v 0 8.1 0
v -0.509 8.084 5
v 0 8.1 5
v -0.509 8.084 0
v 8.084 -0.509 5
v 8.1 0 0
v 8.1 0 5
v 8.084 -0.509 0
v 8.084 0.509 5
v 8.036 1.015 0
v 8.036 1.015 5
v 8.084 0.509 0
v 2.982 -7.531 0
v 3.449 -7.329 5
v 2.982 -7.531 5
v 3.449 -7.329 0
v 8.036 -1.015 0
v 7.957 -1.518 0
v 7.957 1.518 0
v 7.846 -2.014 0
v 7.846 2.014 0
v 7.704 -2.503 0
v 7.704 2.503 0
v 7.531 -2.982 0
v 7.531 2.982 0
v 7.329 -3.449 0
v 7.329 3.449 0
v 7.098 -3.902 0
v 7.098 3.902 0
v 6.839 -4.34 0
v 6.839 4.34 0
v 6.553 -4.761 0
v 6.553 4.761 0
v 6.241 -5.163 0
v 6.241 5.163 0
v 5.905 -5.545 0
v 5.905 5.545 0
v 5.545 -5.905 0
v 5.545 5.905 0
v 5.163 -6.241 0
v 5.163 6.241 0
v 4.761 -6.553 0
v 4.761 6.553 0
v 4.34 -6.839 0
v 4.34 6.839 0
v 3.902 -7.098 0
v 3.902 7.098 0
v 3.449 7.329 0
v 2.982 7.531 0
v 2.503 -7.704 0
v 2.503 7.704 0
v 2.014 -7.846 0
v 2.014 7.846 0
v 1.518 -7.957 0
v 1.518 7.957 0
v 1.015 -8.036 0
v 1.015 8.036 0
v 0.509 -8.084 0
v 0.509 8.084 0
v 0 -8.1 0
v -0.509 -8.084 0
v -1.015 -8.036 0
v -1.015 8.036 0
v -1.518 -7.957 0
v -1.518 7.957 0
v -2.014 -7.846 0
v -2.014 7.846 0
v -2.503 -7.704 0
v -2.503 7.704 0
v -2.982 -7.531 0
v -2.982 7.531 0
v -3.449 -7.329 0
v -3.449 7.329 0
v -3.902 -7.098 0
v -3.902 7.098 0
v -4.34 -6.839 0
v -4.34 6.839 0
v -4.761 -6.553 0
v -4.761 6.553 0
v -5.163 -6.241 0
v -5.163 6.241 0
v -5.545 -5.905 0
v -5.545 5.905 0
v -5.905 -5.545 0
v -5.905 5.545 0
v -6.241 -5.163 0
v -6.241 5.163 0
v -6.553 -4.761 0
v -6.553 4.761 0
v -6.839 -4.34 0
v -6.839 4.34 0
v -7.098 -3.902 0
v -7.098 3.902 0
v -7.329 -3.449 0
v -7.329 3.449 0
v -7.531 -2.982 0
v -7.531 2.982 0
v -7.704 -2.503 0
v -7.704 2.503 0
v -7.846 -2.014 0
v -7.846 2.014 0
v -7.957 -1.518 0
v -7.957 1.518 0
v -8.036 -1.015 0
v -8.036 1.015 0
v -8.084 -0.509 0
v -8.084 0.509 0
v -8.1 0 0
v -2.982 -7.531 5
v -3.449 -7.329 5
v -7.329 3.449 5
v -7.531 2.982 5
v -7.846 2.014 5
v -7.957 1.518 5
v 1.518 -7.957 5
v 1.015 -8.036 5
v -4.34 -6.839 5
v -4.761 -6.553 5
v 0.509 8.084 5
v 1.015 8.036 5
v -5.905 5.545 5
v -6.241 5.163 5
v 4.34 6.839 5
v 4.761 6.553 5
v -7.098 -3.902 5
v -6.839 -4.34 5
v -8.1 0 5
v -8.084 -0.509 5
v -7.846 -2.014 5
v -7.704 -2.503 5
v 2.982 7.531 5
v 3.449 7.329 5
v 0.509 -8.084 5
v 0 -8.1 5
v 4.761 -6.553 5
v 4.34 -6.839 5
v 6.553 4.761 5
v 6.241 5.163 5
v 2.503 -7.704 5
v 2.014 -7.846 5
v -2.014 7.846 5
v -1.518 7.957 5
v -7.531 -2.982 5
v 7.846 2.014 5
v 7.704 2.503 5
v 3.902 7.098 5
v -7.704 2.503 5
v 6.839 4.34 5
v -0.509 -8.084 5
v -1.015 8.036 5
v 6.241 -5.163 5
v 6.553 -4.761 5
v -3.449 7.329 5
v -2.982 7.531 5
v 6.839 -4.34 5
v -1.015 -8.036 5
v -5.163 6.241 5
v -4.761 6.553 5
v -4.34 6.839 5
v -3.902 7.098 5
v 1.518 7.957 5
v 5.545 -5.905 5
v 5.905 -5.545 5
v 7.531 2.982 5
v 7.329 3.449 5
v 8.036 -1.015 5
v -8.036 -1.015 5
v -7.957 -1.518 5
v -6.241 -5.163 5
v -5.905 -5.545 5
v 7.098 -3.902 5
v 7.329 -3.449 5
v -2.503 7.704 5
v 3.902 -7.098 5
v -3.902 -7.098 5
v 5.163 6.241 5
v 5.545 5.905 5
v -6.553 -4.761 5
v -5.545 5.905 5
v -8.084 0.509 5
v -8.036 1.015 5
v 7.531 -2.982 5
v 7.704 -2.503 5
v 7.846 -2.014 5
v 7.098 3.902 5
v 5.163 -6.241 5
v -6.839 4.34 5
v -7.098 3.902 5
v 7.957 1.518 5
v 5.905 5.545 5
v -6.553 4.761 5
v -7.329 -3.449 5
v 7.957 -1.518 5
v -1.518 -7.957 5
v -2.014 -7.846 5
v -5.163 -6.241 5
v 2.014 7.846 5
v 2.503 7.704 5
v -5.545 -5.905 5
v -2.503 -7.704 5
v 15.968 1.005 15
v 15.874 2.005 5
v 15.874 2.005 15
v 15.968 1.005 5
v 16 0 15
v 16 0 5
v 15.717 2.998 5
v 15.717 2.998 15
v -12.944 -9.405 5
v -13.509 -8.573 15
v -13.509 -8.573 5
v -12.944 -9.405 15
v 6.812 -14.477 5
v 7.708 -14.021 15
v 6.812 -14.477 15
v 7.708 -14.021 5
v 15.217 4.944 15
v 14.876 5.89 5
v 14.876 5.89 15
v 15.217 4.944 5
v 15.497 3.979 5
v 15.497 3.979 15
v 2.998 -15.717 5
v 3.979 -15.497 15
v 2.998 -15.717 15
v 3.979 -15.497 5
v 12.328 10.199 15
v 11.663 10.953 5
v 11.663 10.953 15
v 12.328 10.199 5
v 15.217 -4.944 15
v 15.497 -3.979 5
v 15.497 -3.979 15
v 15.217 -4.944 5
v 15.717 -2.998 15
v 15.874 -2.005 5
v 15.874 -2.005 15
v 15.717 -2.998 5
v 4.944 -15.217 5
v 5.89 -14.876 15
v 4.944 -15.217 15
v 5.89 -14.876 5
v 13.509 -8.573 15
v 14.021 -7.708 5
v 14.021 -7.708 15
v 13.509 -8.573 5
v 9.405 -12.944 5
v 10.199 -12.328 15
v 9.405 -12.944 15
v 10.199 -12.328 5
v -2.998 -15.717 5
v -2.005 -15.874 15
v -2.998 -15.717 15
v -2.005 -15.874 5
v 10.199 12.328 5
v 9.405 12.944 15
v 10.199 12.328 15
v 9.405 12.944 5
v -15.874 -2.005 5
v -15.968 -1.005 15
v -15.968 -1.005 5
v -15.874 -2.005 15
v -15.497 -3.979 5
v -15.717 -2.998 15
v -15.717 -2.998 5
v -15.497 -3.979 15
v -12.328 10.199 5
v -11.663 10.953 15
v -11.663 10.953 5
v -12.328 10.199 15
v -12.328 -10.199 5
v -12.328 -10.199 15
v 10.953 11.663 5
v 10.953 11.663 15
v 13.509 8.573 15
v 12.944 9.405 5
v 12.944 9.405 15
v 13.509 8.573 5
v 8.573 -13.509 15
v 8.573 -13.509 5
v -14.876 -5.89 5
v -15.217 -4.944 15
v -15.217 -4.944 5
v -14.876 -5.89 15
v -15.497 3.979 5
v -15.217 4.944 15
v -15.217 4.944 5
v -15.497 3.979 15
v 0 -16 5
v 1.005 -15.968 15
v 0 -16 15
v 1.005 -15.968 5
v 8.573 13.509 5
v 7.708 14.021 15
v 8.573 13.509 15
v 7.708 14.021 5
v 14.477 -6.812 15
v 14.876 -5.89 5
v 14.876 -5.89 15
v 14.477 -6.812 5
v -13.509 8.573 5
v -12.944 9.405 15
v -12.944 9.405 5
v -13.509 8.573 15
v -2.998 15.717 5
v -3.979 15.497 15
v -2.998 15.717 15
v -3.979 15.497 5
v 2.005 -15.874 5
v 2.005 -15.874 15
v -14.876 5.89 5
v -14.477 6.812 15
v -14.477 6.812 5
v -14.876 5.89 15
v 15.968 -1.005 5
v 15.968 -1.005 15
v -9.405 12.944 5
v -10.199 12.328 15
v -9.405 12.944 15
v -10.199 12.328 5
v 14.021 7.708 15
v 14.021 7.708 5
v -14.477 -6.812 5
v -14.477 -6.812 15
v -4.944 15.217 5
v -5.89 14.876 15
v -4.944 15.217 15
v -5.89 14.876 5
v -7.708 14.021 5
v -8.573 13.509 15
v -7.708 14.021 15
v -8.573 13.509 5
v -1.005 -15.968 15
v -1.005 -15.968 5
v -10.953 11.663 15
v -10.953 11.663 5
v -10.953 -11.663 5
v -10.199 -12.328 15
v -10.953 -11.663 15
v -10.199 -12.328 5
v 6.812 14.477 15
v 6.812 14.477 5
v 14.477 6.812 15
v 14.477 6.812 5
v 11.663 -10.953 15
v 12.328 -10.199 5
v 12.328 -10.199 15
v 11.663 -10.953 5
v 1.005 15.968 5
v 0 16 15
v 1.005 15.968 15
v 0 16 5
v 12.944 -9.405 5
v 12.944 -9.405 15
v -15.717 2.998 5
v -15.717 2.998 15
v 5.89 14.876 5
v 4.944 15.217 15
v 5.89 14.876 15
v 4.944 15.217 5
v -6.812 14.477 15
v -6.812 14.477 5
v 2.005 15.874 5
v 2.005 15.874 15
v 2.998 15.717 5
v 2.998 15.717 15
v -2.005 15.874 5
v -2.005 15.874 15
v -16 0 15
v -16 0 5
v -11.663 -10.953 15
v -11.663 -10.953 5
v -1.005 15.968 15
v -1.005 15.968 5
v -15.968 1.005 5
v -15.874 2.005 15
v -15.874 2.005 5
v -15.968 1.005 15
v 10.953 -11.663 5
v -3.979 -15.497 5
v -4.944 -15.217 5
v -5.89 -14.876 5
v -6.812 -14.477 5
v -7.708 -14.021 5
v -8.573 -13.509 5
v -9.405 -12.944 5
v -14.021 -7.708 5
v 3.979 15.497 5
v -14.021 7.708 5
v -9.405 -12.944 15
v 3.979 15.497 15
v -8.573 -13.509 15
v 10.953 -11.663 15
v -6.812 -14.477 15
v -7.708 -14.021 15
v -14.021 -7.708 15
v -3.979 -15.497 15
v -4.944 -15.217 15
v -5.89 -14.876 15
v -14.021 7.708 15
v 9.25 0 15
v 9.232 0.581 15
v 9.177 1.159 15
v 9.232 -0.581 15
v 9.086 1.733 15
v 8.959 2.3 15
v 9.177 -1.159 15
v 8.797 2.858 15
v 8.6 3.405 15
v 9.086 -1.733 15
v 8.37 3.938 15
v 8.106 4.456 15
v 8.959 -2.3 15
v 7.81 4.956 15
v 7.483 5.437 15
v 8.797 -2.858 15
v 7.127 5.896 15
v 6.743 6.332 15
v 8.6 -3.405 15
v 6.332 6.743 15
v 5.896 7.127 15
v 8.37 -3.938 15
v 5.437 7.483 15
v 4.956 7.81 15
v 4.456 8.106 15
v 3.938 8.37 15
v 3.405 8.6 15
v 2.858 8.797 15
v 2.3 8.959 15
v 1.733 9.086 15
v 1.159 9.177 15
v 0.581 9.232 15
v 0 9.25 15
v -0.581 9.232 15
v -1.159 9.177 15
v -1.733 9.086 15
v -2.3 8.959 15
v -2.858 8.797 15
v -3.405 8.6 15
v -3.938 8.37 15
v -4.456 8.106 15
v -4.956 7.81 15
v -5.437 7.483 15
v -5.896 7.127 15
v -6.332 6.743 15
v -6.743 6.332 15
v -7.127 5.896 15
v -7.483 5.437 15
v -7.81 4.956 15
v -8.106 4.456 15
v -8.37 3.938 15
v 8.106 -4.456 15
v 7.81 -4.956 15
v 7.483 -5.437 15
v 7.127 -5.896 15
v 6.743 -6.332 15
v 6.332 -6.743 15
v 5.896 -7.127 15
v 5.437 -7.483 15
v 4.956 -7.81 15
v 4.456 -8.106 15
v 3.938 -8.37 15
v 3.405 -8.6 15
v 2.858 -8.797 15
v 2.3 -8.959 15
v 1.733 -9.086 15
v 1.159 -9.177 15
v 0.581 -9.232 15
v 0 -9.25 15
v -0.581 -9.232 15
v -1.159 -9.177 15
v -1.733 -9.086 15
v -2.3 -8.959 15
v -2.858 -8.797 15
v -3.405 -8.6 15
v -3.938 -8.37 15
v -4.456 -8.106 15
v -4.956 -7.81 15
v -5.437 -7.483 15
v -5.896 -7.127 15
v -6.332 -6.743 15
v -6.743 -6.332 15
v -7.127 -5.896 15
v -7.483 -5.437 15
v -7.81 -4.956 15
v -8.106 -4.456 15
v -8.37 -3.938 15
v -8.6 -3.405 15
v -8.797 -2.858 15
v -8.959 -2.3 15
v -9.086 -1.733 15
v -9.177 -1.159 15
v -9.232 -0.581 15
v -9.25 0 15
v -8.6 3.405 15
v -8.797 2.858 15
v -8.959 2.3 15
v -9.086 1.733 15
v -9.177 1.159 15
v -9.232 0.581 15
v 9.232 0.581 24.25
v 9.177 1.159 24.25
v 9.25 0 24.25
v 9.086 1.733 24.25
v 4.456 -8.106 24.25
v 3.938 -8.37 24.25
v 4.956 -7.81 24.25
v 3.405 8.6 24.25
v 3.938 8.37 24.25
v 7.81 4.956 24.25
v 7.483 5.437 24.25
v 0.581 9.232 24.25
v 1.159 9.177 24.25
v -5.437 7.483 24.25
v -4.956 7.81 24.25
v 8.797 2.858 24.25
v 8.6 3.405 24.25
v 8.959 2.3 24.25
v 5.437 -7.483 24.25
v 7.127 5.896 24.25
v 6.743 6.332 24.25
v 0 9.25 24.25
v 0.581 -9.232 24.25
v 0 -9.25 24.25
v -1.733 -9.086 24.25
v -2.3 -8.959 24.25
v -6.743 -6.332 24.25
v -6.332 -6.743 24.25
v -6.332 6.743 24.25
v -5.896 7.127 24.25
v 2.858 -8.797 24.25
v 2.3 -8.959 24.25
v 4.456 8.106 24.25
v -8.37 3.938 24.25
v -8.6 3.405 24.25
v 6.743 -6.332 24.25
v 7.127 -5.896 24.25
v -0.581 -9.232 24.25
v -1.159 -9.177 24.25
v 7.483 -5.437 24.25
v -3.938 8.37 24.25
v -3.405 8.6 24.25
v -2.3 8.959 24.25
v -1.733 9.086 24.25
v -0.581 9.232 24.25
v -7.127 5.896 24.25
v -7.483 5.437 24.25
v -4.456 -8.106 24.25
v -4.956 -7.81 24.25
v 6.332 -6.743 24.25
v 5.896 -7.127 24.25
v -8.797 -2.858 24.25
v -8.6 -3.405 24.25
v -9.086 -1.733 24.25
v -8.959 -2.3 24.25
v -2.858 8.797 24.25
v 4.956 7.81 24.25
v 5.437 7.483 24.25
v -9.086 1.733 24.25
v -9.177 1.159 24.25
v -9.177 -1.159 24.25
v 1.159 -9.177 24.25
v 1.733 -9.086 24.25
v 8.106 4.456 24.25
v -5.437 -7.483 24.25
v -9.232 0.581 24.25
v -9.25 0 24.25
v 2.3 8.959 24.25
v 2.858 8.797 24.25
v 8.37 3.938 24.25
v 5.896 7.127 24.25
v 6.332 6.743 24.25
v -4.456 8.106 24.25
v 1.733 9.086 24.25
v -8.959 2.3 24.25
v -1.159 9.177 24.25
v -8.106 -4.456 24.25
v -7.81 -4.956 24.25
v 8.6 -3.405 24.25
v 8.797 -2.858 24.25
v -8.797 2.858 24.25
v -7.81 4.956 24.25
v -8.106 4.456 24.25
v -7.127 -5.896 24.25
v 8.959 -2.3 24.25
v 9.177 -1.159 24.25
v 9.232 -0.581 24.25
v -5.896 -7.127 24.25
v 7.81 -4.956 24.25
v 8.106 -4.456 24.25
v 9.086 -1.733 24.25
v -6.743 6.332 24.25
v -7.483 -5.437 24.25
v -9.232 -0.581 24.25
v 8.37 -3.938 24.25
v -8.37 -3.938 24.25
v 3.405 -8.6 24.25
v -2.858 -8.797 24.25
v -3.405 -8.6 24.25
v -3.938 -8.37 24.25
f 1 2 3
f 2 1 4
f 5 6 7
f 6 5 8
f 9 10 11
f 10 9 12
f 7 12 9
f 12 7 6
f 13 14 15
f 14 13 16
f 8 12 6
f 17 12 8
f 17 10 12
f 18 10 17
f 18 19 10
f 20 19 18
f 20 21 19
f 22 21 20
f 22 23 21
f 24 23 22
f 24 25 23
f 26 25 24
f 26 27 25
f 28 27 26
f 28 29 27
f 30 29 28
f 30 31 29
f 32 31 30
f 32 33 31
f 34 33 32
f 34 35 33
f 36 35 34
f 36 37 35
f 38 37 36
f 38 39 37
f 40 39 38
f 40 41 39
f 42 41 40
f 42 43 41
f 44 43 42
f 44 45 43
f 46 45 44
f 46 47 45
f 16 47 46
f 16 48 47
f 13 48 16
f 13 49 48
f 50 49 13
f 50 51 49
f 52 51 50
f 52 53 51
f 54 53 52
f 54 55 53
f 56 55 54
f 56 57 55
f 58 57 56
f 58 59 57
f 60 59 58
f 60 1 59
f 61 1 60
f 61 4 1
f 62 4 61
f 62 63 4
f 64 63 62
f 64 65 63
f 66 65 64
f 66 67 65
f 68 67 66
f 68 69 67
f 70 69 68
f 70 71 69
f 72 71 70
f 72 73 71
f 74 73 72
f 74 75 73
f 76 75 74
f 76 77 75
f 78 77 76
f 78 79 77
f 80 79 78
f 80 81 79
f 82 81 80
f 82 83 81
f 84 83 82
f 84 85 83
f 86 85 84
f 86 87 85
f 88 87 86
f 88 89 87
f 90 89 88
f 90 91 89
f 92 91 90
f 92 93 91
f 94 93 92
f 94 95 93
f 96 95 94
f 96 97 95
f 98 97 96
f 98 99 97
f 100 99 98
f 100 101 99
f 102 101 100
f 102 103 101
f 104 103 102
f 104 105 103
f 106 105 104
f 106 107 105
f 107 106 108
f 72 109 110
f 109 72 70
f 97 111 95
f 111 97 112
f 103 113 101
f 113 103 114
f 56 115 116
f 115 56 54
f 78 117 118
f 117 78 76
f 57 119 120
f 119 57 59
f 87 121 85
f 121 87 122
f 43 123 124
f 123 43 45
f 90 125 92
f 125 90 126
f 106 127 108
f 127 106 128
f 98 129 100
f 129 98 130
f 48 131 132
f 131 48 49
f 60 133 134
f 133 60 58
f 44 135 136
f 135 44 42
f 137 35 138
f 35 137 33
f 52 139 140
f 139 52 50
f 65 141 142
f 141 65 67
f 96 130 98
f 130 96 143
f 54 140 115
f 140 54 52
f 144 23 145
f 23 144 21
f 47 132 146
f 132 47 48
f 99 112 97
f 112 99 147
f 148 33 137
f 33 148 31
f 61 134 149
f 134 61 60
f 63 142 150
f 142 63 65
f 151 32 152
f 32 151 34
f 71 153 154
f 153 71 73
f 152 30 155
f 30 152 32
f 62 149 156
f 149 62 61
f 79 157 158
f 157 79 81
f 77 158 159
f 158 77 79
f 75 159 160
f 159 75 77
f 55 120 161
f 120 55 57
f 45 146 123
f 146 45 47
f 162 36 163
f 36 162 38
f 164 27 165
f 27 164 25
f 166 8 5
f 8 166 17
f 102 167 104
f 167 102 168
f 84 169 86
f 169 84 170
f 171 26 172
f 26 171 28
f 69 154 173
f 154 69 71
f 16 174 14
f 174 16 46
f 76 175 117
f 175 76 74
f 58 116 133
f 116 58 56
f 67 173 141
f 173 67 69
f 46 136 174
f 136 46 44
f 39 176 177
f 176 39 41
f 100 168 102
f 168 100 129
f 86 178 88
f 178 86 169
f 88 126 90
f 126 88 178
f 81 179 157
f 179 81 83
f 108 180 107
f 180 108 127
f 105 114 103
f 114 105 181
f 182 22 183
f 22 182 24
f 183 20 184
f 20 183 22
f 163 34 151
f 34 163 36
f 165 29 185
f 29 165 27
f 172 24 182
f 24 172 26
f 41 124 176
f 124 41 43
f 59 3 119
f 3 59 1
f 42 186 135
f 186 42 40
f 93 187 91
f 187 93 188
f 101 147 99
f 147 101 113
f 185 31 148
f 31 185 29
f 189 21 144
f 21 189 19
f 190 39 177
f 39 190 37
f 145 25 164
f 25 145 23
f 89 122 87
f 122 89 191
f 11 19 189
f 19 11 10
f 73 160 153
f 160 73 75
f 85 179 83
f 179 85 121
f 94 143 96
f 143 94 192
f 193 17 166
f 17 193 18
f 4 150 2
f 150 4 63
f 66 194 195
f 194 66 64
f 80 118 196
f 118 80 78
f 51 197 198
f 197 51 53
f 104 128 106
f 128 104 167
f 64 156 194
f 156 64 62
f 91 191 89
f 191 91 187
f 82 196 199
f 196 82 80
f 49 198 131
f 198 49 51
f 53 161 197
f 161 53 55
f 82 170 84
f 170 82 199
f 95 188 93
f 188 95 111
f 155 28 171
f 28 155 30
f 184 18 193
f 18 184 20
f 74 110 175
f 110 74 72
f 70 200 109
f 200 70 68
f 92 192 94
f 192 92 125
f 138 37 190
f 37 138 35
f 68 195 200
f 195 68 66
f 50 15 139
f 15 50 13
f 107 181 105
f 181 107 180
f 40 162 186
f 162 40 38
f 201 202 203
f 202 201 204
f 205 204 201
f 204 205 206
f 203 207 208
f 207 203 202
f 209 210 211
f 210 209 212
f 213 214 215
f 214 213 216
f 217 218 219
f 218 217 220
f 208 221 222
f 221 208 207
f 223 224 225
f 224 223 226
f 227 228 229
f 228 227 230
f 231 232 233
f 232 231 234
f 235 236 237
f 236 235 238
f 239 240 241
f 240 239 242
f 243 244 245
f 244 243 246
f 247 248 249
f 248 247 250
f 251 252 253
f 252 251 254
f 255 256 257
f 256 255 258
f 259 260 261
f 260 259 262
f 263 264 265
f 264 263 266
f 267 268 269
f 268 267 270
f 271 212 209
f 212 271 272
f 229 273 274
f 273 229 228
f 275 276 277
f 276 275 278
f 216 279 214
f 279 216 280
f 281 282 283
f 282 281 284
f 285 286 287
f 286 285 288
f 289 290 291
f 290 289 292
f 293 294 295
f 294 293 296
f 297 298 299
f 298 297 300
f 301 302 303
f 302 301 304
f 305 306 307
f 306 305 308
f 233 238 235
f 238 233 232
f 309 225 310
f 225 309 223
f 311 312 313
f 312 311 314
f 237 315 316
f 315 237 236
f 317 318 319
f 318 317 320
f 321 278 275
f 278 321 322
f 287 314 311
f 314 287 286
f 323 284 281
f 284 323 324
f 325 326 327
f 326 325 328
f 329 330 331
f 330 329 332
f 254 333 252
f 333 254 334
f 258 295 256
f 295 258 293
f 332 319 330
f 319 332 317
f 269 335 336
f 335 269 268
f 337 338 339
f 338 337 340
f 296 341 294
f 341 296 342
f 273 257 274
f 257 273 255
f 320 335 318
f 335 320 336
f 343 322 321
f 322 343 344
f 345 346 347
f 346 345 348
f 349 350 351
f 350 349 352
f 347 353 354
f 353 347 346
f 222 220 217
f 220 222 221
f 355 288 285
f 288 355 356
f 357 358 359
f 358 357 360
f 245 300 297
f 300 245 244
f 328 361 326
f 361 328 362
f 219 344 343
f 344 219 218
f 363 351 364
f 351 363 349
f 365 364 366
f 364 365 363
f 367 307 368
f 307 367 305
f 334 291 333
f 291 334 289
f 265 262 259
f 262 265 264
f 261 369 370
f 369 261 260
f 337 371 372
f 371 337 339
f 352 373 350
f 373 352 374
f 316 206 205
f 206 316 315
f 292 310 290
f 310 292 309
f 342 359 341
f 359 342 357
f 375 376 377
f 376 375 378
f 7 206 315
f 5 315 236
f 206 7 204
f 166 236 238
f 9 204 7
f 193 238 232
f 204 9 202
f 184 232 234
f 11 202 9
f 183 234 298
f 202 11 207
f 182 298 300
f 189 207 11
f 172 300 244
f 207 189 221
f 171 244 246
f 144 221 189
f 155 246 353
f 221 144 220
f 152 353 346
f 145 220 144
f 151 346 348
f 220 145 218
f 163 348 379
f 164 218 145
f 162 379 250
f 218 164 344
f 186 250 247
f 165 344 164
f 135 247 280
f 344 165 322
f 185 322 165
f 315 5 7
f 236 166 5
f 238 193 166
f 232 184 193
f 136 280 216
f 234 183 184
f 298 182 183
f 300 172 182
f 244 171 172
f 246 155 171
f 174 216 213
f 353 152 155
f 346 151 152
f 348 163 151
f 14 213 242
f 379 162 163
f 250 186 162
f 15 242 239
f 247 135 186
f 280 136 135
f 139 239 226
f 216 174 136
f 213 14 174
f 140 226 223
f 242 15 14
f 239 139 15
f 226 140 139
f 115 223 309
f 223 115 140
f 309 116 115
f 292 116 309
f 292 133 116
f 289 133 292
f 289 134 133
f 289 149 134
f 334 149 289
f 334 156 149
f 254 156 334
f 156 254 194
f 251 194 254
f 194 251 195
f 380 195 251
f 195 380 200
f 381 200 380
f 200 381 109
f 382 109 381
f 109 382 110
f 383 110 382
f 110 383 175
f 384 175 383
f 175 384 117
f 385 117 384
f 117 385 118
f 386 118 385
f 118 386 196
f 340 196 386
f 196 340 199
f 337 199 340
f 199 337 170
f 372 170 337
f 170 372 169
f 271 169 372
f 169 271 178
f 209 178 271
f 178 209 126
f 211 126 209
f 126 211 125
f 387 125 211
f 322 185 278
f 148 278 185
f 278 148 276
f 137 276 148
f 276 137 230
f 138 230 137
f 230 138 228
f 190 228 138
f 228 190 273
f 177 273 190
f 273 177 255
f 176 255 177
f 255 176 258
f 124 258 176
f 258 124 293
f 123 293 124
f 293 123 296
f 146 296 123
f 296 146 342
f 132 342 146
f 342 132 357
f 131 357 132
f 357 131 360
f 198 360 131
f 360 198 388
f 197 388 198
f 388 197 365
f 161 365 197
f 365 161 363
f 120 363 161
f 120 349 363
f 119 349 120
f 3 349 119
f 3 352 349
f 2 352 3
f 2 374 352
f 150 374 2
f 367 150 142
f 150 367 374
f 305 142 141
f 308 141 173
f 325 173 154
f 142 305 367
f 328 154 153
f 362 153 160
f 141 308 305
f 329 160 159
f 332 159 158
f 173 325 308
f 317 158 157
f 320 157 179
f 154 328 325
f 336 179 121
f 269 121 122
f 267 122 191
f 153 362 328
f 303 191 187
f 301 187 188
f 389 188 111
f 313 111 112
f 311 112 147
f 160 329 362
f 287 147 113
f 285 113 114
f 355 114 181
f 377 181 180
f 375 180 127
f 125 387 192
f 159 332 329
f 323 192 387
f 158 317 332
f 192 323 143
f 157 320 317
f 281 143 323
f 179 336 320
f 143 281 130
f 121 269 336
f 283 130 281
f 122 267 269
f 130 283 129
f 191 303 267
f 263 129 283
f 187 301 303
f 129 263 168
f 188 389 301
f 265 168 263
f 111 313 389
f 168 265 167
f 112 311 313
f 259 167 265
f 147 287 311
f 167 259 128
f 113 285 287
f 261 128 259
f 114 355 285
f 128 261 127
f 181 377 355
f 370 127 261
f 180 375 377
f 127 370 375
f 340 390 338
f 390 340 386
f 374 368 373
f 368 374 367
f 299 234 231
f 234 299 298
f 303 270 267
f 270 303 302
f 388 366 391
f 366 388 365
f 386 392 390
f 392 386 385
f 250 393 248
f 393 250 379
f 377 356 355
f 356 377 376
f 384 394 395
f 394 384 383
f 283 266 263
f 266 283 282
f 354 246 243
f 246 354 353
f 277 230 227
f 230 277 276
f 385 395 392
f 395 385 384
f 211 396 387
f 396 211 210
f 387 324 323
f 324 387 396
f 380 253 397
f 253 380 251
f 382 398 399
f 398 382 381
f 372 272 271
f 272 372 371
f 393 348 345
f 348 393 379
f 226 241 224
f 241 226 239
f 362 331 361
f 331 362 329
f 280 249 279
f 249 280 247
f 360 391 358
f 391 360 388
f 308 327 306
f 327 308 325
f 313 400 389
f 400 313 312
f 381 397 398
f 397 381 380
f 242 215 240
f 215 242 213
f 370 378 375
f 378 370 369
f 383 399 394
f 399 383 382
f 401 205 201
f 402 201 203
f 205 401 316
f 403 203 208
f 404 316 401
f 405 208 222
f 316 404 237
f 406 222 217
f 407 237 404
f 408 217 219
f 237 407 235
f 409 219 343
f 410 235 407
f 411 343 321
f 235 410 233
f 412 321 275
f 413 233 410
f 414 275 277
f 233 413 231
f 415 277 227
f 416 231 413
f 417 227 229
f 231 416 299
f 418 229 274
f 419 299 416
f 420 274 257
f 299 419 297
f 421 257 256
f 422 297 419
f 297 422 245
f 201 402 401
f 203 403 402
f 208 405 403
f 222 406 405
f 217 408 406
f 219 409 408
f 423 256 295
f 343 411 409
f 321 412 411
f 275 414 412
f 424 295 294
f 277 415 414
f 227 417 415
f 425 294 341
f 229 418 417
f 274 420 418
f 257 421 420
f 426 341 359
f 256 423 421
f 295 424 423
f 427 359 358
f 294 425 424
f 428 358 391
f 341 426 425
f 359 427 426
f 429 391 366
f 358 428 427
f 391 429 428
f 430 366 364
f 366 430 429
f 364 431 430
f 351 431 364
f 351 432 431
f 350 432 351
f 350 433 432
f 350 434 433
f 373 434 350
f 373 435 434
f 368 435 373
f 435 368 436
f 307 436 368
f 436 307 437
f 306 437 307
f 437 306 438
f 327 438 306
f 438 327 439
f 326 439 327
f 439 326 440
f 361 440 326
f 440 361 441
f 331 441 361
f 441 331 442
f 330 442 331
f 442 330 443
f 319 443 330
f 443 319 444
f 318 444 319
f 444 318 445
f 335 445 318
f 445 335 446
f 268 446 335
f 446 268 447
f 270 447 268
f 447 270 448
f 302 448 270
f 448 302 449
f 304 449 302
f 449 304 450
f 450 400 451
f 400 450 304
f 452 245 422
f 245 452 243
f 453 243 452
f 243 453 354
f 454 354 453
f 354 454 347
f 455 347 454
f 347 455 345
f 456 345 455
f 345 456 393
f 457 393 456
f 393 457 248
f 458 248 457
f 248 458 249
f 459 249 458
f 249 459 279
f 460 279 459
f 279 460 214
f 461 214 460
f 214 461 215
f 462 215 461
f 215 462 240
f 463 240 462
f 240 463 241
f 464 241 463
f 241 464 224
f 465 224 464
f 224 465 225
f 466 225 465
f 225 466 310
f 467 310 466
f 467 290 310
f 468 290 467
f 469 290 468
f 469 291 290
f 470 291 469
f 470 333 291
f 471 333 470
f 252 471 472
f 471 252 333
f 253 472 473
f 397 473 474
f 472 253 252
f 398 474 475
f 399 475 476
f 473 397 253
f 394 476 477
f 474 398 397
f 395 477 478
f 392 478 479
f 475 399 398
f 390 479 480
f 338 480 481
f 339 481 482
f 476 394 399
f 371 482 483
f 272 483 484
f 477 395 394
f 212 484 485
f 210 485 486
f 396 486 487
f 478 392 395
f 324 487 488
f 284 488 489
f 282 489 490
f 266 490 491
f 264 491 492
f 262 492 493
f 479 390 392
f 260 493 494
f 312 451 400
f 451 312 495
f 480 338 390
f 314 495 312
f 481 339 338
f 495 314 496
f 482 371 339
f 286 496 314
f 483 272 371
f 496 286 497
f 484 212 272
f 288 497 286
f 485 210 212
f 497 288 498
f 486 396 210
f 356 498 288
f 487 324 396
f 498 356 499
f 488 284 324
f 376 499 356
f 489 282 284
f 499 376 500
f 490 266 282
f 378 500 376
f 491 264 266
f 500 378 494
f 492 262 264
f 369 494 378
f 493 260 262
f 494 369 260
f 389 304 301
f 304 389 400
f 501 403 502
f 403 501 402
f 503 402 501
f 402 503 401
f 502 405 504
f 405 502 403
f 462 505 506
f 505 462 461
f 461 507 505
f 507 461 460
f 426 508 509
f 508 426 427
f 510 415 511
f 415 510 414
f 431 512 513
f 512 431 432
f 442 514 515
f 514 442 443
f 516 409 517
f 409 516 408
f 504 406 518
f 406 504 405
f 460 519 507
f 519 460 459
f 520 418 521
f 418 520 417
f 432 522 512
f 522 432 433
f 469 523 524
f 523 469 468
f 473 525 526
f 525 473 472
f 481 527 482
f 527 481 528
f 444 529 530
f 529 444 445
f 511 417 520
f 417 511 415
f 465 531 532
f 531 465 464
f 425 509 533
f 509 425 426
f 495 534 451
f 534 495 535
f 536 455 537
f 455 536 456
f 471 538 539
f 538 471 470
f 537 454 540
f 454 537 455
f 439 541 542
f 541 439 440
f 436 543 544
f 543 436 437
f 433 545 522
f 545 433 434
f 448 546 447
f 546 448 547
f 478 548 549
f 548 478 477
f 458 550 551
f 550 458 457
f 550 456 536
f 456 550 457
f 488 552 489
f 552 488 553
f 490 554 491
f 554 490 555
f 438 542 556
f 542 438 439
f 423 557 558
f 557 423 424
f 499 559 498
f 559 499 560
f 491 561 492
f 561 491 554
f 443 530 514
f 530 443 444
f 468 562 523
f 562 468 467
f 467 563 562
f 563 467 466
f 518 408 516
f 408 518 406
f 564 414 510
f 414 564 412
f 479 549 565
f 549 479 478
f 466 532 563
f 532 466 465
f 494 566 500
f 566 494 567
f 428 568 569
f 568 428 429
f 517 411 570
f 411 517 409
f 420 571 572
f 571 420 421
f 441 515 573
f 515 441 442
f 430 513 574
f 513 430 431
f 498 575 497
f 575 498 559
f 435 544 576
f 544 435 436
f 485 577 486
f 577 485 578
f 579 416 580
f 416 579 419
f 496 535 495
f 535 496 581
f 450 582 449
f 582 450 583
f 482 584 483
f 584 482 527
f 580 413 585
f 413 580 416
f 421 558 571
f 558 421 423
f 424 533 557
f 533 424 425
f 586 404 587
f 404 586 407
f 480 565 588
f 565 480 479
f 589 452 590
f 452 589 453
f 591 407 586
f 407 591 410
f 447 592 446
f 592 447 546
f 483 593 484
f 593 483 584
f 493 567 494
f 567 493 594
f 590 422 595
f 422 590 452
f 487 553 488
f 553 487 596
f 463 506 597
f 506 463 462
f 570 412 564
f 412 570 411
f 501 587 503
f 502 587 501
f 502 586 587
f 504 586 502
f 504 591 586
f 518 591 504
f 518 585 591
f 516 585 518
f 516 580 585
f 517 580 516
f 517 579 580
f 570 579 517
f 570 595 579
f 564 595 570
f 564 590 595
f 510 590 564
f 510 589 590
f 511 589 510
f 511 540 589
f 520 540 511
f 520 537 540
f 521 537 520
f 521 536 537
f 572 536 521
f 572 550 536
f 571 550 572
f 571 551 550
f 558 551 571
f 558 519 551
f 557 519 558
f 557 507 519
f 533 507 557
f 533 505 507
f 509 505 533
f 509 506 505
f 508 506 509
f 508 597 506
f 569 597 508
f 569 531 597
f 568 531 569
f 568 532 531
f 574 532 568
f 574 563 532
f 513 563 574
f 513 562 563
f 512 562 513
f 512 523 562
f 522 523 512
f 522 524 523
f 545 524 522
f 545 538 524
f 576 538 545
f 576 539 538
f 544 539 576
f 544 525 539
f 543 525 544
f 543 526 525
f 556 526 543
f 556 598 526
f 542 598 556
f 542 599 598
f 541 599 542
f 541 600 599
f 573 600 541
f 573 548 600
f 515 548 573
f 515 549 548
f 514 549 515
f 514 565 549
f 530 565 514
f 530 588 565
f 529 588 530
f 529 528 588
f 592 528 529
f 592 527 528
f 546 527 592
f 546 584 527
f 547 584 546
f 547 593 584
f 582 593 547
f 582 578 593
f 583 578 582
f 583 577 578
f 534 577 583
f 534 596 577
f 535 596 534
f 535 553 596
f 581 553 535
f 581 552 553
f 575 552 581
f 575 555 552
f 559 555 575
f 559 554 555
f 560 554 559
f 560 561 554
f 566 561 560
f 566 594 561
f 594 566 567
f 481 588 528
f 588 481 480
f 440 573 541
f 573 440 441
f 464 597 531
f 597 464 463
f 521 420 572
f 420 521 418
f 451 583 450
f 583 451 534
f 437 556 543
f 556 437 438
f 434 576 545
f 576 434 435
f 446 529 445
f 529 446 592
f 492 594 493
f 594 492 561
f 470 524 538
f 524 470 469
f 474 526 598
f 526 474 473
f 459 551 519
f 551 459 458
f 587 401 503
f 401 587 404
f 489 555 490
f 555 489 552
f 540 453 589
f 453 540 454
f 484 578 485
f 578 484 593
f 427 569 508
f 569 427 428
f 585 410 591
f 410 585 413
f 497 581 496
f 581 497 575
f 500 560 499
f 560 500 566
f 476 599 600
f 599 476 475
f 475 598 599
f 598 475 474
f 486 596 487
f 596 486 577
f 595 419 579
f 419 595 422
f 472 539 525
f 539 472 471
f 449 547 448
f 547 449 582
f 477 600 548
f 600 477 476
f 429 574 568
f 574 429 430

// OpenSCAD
translate([0,0,5.4/2])
cylinder(d=16.2, h=5.4, center=true);
translate([0,0,10])
cylinder(d=32, h=10, center=true);
translate([0,0,19.5])
cylinder(d=18.5, h=9.5, center=true);


$fn=100;
